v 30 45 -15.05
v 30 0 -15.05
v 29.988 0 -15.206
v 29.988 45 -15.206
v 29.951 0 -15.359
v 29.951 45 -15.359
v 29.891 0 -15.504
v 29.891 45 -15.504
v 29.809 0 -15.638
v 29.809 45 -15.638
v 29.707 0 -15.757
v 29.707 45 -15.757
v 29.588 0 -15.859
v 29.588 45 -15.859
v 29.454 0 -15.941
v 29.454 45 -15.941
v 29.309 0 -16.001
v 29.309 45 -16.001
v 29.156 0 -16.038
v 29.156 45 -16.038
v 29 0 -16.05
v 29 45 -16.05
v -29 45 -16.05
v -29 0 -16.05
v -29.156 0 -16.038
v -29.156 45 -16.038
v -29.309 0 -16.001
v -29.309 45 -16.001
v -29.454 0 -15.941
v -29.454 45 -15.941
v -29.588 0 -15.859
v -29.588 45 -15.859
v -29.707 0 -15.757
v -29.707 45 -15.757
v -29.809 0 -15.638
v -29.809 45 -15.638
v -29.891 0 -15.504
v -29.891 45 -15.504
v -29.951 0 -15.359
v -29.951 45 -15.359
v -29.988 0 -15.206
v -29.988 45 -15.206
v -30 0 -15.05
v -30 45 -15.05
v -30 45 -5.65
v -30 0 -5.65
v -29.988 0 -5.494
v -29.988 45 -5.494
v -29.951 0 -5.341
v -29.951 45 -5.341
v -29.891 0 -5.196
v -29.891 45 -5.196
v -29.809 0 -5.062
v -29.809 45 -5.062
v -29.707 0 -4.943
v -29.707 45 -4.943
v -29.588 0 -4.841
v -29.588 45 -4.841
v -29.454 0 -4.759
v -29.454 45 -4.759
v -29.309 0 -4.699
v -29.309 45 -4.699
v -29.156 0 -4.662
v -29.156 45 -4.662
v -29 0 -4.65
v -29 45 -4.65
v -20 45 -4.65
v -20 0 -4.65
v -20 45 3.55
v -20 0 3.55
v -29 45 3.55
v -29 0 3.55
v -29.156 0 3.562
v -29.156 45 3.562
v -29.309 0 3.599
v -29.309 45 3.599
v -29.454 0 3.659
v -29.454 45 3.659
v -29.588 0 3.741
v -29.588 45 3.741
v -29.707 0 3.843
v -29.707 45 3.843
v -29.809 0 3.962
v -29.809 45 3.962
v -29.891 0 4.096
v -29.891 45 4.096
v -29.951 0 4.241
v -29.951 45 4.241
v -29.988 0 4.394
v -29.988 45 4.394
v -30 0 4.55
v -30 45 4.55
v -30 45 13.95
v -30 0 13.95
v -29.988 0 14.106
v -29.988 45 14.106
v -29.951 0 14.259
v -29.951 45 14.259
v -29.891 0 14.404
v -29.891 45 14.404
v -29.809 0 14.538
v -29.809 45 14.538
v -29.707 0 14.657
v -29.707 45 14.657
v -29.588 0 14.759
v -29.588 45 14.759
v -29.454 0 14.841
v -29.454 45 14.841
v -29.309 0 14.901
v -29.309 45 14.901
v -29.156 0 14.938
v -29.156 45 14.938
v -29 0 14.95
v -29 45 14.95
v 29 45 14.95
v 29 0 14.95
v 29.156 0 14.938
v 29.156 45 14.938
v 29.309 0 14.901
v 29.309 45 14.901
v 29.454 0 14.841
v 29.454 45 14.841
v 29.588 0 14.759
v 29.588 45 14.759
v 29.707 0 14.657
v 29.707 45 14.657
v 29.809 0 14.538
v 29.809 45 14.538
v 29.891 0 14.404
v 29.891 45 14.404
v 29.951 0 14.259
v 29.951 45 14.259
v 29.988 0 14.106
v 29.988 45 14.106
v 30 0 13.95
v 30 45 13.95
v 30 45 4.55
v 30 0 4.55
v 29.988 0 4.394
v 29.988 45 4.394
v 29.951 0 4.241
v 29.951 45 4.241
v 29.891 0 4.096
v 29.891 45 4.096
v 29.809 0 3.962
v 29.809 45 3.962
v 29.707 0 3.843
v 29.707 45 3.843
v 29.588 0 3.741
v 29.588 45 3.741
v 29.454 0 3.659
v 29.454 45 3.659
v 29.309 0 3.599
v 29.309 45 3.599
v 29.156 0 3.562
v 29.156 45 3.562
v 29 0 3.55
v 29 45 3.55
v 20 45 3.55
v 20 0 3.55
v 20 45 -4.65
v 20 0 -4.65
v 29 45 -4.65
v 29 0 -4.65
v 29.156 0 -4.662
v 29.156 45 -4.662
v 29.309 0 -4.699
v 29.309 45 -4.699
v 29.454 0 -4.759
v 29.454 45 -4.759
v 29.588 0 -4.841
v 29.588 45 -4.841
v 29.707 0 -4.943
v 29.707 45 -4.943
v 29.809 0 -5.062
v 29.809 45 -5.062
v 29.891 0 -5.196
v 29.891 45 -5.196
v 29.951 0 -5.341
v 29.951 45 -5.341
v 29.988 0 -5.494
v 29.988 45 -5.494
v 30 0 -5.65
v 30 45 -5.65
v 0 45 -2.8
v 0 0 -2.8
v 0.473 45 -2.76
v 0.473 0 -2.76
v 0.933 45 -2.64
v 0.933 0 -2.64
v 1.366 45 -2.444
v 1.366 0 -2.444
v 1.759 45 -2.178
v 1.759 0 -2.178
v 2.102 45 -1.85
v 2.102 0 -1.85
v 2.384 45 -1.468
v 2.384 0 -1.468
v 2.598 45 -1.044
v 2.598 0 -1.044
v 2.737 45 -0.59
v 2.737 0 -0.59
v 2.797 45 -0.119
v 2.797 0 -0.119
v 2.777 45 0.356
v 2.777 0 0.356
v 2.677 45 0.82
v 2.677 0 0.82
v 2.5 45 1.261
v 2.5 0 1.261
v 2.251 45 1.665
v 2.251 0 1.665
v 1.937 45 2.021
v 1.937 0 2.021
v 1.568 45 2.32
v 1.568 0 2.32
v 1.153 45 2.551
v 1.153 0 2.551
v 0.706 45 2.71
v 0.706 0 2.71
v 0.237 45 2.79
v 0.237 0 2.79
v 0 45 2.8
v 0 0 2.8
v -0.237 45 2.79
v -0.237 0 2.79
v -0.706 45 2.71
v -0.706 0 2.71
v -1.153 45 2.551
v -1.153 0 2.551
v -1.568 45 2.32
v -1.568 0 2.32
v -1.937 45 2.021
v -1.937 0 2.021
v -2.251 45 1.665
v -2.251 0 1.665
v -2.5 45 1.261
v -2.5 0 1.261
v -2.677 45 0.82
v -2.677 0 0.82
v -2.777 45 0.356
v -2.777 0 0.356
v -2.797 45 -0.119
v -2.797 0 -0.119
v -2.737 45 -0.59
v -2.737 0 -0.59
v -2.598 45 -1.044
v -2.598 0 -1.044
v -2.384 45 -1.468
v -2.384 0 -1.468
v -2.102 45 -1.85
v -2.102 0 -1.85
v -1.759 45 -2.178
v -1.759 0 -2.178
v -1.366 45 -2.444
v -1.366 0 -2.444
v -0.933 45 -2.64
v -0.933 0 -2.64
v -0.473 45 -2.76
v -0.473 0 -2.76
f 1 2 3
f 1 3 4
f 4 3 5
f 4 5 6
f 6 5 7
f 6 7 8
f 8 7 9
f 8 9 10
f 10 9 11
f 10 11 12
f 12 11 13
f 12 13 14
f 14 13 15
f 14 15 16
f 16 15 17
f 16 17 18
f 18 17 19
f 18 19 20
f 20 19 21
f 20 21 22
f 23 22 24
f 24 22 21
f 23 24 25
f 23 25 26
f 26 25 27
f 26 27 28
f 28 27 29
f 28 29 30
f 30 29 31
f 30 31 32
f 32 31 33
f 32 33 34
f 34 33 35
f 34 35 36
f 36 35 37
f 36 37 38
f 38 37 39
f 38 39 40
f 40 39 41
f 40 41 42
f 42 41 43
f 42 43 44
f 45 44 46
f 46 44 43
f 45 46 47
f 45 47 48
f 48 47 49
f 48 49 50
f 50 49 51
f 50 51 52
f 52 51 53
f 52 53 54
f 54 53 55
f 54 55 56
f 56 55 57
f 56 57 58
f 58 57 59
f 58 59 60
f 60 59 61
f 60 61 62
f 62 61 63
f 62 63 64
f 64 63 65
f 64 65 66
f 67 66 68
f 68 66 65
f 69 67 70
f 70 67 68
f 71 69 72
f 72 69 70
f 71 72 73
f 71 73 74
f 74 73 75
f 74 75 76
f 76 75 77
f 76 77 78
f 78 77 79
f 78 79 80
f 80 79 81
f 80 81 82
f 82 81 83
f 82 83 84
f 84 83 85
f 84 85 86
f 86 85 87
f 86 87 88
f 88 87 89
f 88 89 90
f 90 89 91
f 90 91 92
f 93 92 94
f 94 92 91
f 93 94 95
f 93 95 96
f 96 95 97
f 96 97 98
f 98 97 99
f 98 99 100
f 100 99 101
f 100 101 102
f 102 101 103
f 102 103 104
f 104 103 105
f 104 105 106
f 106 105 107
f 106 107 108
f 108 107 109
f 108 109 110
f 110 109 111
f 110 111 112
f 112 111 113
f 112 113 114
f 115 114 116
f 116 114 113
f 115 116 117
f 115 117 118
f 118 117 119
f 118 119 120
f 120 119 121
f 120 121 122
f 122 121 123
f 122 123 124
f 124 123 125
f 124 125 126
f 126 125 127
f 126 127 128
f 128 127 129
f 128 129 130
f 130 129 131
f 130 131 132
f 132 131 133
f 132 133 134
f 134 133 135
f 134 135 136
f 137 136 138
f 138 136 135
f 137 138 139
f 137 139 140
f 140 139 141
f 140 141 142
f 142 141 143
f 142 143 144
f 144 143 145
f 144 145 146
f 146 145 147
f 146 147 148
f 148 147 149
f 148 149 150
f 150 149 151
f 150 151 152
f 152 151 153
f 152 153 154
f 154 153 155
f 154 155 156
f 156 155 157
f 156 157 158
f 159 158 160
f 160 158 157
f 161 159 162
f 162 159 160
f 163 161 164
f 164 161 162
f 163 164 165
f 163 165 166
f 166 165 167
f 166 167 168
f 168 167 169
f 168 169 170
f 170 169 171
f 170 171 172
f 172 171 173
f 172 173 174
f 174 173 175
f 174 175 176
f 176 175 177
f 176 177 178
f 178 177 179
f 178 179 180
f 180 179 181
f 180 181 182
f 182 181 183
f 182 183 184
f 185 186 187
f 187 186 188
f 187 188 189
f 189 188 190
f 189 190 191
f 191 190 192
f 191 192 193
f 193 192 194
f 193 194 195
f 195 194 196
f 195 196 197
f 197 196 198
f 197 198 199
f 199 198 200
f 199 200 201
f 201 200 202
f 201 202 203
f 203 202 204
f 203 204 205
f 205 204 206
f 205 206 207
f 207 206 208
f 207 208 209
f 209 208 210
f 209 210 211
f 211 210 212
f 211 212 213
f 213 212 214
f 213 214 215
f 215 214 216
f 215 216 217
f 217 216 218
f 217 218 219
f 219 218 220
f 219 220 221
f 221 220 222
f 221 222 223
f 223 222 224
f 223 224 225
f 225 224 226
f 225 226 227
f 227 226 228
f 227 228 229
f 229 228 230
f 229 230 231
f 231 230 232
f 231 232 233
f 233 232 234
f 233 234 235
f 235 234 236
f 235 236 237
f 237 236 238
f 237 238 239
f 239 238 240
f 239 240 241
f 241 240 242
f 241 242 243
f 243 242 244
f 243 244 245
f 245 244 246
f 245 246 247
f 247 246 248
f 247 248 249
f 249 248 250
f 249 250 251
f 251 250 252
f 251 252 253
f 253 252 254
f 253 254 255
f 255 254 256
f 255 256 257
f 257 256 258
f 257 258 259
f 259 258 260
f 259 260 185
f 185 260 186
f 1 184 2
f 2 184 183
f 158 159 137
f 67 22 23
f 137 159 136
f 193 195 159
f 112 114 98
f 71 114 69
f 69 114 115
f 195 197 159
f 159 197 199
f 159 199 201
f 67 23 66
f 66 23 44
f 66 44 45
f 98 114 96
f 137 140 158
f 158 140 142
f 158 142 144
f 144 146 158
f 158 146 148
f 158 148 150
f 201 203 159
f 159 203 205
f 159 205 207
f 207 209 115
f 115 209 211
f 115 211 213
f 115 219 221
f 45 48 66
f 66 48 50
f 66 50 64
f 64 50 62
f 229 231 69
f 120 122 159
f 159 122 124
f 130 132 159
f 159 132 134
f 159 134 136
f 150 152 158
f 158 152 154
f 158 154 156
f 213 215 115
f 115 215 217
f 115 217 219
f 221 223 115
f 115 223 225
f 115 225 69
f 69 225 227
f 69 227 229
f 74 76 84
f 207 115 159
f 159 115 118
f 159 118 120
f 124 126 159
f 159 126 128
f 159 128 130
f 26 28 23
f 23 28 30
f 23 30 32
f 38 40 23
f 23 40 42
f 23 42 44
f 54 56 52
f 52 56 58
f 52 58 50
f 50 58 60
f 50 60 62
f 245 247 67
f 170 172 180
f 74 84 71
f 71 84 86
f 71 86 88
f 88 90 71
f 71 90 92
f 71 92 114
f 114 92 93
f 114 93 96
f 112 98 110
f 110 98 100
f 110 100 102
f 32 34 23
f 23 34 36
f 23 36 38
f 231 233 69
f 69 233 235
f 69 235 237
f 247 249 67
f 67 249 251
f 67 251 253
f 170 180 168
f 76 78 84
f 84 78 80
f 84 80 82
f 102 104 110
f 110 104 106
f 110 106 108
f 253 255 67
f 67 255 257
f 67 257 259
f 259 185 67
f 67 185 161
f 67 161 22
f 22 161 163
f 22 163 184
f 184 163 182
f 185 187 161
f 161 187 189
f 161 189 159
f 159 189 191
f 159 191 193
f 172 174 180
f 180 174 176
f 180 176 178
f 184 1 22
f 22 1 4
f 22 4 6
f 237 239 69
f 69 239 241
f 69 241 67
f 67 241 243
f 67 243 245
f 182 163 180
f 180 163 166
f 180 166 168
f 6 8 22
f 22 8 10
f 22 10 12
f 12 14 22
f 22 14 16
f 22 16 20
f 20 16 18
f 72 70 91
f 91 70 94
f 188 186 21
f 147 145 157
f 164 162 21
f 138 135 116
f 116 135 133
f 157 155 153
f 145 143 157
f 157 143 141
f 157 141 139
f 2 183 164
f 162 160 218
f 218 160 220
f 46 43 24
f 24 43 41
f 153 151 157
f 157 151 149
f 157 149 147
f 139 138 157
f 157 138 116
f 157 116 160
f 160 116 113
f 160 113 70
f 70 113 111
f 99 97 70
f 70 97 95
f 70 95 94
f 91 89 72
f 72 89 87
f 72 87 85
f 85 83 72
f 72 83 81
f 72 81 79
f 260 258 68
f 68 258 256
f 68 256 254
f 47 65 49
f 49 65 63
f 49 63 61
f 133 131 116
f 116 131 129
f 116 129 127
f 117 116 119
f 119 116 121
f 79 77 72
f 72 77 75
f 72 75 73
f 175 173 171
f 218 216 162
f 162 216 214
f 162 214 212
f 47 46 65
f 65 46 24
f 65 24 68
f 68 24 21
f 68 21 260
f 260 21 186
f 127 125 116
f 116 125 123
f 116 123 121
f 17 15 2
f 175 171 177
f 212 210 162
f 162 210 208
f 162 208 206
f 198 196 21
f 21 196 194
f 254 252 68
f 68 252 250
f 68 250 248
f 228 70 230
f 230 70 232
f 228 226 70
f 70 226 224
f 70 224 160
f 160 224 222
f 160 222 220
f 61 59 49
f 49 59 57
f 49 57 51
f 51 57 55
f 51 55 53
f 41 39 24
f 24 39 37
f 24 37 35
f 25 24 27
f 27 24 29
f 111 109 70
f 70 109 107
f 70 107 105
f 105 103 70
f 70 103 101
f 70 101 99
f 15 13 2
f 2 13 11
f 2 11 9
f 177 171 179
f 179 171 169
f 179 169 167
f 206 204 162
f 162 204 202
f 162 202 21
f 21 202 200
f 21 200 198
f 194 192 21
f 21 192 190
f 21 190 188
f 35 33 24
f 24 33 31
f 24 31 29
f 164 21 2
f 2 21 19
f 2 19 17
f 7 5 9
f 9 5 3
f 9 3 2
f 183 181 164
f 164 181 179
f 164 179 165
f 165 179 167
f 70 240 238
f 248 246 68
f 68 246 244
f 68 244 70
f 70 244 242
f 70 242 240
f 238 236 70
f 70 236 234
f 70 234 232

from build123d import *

# Parameters (mm, degrees)
SKETCH1_R           = 2.8
BOSS_EXTRUDE1_DEPTH = 45


with BuildPart() as part:
    # Sketch1 → Boss-Extrude1 (new body)
    with BuildSketch(Plane(origin=(0, 0, 0), x_dir=(1, 0, 0), z_dir=(0, 1, 0))):
        with BuildLine():
            Line((20, -3.55), (20, 4.65))
            Line((20, 4.65), (29, 4.65))
            ThreePointArc((29, 4.65), (29.707106781, 4.942893219), (30, 5.65))
            Line((30, 5.65), (30, 15.05))
            ThreePointArc((30, 15.05), (29.707106781, 15.757106781), (29, 16.05))
            Line((29, 16.05), (20, 16.05))
            Line((20, 16.05), (-20, 16.05))
            Line((-20, 16.05), (-29, 16.05))
            ThreePointArc((-29, 16.05), (-29.707106781, 15.757106781), (-30, 15.05))
            Line((-30, 15.05), (-30, 5.65))
            ThreePointArc((-30, 5.65), (-29.707106781, 4.942893219), (-29, 4.65))
            Line((-29, 4.65), (-20, 4.65))
            Line((-20, 4.65), (-20, -3.55))
            Line((-20, -3.55), (-29, -3.55))
            ThreePointArc((-29, -3.55), (-29.707106781, -3.842893219), (-30, -4.55))
            Line((-30, -4.55), (-30, -13.95))
            ThreePointArc((-30, -13.95), (-29.707106781, -14.657106781), (-29, -14.95))
            Line((-29, -14.95), (-20, -14.95))
            Line((-20, -14.95), (20, -14.95))
            Line((20, -14.95), (29, -14.95))
            ThreePointArc((29, -14.95), (29.707106781, -14.657106781), (30, -13.95))
            Line((30, -13.95), (30, -4.55))
            ThreePointArc((30, -4.55), (29.707106781, -3.842893219), (29, -3.55))
            Line((29, -3.55), (20, -3.55))
        make_face()
        with Locations(Location((0, 0, 0), (0, 0, 90))):
            Circle(SKETCH1_R, mode=Mode.SUBTRACT)
    extrude(amount=BOSS_EXTRUDE1_DEPTH)


solid = part.part
